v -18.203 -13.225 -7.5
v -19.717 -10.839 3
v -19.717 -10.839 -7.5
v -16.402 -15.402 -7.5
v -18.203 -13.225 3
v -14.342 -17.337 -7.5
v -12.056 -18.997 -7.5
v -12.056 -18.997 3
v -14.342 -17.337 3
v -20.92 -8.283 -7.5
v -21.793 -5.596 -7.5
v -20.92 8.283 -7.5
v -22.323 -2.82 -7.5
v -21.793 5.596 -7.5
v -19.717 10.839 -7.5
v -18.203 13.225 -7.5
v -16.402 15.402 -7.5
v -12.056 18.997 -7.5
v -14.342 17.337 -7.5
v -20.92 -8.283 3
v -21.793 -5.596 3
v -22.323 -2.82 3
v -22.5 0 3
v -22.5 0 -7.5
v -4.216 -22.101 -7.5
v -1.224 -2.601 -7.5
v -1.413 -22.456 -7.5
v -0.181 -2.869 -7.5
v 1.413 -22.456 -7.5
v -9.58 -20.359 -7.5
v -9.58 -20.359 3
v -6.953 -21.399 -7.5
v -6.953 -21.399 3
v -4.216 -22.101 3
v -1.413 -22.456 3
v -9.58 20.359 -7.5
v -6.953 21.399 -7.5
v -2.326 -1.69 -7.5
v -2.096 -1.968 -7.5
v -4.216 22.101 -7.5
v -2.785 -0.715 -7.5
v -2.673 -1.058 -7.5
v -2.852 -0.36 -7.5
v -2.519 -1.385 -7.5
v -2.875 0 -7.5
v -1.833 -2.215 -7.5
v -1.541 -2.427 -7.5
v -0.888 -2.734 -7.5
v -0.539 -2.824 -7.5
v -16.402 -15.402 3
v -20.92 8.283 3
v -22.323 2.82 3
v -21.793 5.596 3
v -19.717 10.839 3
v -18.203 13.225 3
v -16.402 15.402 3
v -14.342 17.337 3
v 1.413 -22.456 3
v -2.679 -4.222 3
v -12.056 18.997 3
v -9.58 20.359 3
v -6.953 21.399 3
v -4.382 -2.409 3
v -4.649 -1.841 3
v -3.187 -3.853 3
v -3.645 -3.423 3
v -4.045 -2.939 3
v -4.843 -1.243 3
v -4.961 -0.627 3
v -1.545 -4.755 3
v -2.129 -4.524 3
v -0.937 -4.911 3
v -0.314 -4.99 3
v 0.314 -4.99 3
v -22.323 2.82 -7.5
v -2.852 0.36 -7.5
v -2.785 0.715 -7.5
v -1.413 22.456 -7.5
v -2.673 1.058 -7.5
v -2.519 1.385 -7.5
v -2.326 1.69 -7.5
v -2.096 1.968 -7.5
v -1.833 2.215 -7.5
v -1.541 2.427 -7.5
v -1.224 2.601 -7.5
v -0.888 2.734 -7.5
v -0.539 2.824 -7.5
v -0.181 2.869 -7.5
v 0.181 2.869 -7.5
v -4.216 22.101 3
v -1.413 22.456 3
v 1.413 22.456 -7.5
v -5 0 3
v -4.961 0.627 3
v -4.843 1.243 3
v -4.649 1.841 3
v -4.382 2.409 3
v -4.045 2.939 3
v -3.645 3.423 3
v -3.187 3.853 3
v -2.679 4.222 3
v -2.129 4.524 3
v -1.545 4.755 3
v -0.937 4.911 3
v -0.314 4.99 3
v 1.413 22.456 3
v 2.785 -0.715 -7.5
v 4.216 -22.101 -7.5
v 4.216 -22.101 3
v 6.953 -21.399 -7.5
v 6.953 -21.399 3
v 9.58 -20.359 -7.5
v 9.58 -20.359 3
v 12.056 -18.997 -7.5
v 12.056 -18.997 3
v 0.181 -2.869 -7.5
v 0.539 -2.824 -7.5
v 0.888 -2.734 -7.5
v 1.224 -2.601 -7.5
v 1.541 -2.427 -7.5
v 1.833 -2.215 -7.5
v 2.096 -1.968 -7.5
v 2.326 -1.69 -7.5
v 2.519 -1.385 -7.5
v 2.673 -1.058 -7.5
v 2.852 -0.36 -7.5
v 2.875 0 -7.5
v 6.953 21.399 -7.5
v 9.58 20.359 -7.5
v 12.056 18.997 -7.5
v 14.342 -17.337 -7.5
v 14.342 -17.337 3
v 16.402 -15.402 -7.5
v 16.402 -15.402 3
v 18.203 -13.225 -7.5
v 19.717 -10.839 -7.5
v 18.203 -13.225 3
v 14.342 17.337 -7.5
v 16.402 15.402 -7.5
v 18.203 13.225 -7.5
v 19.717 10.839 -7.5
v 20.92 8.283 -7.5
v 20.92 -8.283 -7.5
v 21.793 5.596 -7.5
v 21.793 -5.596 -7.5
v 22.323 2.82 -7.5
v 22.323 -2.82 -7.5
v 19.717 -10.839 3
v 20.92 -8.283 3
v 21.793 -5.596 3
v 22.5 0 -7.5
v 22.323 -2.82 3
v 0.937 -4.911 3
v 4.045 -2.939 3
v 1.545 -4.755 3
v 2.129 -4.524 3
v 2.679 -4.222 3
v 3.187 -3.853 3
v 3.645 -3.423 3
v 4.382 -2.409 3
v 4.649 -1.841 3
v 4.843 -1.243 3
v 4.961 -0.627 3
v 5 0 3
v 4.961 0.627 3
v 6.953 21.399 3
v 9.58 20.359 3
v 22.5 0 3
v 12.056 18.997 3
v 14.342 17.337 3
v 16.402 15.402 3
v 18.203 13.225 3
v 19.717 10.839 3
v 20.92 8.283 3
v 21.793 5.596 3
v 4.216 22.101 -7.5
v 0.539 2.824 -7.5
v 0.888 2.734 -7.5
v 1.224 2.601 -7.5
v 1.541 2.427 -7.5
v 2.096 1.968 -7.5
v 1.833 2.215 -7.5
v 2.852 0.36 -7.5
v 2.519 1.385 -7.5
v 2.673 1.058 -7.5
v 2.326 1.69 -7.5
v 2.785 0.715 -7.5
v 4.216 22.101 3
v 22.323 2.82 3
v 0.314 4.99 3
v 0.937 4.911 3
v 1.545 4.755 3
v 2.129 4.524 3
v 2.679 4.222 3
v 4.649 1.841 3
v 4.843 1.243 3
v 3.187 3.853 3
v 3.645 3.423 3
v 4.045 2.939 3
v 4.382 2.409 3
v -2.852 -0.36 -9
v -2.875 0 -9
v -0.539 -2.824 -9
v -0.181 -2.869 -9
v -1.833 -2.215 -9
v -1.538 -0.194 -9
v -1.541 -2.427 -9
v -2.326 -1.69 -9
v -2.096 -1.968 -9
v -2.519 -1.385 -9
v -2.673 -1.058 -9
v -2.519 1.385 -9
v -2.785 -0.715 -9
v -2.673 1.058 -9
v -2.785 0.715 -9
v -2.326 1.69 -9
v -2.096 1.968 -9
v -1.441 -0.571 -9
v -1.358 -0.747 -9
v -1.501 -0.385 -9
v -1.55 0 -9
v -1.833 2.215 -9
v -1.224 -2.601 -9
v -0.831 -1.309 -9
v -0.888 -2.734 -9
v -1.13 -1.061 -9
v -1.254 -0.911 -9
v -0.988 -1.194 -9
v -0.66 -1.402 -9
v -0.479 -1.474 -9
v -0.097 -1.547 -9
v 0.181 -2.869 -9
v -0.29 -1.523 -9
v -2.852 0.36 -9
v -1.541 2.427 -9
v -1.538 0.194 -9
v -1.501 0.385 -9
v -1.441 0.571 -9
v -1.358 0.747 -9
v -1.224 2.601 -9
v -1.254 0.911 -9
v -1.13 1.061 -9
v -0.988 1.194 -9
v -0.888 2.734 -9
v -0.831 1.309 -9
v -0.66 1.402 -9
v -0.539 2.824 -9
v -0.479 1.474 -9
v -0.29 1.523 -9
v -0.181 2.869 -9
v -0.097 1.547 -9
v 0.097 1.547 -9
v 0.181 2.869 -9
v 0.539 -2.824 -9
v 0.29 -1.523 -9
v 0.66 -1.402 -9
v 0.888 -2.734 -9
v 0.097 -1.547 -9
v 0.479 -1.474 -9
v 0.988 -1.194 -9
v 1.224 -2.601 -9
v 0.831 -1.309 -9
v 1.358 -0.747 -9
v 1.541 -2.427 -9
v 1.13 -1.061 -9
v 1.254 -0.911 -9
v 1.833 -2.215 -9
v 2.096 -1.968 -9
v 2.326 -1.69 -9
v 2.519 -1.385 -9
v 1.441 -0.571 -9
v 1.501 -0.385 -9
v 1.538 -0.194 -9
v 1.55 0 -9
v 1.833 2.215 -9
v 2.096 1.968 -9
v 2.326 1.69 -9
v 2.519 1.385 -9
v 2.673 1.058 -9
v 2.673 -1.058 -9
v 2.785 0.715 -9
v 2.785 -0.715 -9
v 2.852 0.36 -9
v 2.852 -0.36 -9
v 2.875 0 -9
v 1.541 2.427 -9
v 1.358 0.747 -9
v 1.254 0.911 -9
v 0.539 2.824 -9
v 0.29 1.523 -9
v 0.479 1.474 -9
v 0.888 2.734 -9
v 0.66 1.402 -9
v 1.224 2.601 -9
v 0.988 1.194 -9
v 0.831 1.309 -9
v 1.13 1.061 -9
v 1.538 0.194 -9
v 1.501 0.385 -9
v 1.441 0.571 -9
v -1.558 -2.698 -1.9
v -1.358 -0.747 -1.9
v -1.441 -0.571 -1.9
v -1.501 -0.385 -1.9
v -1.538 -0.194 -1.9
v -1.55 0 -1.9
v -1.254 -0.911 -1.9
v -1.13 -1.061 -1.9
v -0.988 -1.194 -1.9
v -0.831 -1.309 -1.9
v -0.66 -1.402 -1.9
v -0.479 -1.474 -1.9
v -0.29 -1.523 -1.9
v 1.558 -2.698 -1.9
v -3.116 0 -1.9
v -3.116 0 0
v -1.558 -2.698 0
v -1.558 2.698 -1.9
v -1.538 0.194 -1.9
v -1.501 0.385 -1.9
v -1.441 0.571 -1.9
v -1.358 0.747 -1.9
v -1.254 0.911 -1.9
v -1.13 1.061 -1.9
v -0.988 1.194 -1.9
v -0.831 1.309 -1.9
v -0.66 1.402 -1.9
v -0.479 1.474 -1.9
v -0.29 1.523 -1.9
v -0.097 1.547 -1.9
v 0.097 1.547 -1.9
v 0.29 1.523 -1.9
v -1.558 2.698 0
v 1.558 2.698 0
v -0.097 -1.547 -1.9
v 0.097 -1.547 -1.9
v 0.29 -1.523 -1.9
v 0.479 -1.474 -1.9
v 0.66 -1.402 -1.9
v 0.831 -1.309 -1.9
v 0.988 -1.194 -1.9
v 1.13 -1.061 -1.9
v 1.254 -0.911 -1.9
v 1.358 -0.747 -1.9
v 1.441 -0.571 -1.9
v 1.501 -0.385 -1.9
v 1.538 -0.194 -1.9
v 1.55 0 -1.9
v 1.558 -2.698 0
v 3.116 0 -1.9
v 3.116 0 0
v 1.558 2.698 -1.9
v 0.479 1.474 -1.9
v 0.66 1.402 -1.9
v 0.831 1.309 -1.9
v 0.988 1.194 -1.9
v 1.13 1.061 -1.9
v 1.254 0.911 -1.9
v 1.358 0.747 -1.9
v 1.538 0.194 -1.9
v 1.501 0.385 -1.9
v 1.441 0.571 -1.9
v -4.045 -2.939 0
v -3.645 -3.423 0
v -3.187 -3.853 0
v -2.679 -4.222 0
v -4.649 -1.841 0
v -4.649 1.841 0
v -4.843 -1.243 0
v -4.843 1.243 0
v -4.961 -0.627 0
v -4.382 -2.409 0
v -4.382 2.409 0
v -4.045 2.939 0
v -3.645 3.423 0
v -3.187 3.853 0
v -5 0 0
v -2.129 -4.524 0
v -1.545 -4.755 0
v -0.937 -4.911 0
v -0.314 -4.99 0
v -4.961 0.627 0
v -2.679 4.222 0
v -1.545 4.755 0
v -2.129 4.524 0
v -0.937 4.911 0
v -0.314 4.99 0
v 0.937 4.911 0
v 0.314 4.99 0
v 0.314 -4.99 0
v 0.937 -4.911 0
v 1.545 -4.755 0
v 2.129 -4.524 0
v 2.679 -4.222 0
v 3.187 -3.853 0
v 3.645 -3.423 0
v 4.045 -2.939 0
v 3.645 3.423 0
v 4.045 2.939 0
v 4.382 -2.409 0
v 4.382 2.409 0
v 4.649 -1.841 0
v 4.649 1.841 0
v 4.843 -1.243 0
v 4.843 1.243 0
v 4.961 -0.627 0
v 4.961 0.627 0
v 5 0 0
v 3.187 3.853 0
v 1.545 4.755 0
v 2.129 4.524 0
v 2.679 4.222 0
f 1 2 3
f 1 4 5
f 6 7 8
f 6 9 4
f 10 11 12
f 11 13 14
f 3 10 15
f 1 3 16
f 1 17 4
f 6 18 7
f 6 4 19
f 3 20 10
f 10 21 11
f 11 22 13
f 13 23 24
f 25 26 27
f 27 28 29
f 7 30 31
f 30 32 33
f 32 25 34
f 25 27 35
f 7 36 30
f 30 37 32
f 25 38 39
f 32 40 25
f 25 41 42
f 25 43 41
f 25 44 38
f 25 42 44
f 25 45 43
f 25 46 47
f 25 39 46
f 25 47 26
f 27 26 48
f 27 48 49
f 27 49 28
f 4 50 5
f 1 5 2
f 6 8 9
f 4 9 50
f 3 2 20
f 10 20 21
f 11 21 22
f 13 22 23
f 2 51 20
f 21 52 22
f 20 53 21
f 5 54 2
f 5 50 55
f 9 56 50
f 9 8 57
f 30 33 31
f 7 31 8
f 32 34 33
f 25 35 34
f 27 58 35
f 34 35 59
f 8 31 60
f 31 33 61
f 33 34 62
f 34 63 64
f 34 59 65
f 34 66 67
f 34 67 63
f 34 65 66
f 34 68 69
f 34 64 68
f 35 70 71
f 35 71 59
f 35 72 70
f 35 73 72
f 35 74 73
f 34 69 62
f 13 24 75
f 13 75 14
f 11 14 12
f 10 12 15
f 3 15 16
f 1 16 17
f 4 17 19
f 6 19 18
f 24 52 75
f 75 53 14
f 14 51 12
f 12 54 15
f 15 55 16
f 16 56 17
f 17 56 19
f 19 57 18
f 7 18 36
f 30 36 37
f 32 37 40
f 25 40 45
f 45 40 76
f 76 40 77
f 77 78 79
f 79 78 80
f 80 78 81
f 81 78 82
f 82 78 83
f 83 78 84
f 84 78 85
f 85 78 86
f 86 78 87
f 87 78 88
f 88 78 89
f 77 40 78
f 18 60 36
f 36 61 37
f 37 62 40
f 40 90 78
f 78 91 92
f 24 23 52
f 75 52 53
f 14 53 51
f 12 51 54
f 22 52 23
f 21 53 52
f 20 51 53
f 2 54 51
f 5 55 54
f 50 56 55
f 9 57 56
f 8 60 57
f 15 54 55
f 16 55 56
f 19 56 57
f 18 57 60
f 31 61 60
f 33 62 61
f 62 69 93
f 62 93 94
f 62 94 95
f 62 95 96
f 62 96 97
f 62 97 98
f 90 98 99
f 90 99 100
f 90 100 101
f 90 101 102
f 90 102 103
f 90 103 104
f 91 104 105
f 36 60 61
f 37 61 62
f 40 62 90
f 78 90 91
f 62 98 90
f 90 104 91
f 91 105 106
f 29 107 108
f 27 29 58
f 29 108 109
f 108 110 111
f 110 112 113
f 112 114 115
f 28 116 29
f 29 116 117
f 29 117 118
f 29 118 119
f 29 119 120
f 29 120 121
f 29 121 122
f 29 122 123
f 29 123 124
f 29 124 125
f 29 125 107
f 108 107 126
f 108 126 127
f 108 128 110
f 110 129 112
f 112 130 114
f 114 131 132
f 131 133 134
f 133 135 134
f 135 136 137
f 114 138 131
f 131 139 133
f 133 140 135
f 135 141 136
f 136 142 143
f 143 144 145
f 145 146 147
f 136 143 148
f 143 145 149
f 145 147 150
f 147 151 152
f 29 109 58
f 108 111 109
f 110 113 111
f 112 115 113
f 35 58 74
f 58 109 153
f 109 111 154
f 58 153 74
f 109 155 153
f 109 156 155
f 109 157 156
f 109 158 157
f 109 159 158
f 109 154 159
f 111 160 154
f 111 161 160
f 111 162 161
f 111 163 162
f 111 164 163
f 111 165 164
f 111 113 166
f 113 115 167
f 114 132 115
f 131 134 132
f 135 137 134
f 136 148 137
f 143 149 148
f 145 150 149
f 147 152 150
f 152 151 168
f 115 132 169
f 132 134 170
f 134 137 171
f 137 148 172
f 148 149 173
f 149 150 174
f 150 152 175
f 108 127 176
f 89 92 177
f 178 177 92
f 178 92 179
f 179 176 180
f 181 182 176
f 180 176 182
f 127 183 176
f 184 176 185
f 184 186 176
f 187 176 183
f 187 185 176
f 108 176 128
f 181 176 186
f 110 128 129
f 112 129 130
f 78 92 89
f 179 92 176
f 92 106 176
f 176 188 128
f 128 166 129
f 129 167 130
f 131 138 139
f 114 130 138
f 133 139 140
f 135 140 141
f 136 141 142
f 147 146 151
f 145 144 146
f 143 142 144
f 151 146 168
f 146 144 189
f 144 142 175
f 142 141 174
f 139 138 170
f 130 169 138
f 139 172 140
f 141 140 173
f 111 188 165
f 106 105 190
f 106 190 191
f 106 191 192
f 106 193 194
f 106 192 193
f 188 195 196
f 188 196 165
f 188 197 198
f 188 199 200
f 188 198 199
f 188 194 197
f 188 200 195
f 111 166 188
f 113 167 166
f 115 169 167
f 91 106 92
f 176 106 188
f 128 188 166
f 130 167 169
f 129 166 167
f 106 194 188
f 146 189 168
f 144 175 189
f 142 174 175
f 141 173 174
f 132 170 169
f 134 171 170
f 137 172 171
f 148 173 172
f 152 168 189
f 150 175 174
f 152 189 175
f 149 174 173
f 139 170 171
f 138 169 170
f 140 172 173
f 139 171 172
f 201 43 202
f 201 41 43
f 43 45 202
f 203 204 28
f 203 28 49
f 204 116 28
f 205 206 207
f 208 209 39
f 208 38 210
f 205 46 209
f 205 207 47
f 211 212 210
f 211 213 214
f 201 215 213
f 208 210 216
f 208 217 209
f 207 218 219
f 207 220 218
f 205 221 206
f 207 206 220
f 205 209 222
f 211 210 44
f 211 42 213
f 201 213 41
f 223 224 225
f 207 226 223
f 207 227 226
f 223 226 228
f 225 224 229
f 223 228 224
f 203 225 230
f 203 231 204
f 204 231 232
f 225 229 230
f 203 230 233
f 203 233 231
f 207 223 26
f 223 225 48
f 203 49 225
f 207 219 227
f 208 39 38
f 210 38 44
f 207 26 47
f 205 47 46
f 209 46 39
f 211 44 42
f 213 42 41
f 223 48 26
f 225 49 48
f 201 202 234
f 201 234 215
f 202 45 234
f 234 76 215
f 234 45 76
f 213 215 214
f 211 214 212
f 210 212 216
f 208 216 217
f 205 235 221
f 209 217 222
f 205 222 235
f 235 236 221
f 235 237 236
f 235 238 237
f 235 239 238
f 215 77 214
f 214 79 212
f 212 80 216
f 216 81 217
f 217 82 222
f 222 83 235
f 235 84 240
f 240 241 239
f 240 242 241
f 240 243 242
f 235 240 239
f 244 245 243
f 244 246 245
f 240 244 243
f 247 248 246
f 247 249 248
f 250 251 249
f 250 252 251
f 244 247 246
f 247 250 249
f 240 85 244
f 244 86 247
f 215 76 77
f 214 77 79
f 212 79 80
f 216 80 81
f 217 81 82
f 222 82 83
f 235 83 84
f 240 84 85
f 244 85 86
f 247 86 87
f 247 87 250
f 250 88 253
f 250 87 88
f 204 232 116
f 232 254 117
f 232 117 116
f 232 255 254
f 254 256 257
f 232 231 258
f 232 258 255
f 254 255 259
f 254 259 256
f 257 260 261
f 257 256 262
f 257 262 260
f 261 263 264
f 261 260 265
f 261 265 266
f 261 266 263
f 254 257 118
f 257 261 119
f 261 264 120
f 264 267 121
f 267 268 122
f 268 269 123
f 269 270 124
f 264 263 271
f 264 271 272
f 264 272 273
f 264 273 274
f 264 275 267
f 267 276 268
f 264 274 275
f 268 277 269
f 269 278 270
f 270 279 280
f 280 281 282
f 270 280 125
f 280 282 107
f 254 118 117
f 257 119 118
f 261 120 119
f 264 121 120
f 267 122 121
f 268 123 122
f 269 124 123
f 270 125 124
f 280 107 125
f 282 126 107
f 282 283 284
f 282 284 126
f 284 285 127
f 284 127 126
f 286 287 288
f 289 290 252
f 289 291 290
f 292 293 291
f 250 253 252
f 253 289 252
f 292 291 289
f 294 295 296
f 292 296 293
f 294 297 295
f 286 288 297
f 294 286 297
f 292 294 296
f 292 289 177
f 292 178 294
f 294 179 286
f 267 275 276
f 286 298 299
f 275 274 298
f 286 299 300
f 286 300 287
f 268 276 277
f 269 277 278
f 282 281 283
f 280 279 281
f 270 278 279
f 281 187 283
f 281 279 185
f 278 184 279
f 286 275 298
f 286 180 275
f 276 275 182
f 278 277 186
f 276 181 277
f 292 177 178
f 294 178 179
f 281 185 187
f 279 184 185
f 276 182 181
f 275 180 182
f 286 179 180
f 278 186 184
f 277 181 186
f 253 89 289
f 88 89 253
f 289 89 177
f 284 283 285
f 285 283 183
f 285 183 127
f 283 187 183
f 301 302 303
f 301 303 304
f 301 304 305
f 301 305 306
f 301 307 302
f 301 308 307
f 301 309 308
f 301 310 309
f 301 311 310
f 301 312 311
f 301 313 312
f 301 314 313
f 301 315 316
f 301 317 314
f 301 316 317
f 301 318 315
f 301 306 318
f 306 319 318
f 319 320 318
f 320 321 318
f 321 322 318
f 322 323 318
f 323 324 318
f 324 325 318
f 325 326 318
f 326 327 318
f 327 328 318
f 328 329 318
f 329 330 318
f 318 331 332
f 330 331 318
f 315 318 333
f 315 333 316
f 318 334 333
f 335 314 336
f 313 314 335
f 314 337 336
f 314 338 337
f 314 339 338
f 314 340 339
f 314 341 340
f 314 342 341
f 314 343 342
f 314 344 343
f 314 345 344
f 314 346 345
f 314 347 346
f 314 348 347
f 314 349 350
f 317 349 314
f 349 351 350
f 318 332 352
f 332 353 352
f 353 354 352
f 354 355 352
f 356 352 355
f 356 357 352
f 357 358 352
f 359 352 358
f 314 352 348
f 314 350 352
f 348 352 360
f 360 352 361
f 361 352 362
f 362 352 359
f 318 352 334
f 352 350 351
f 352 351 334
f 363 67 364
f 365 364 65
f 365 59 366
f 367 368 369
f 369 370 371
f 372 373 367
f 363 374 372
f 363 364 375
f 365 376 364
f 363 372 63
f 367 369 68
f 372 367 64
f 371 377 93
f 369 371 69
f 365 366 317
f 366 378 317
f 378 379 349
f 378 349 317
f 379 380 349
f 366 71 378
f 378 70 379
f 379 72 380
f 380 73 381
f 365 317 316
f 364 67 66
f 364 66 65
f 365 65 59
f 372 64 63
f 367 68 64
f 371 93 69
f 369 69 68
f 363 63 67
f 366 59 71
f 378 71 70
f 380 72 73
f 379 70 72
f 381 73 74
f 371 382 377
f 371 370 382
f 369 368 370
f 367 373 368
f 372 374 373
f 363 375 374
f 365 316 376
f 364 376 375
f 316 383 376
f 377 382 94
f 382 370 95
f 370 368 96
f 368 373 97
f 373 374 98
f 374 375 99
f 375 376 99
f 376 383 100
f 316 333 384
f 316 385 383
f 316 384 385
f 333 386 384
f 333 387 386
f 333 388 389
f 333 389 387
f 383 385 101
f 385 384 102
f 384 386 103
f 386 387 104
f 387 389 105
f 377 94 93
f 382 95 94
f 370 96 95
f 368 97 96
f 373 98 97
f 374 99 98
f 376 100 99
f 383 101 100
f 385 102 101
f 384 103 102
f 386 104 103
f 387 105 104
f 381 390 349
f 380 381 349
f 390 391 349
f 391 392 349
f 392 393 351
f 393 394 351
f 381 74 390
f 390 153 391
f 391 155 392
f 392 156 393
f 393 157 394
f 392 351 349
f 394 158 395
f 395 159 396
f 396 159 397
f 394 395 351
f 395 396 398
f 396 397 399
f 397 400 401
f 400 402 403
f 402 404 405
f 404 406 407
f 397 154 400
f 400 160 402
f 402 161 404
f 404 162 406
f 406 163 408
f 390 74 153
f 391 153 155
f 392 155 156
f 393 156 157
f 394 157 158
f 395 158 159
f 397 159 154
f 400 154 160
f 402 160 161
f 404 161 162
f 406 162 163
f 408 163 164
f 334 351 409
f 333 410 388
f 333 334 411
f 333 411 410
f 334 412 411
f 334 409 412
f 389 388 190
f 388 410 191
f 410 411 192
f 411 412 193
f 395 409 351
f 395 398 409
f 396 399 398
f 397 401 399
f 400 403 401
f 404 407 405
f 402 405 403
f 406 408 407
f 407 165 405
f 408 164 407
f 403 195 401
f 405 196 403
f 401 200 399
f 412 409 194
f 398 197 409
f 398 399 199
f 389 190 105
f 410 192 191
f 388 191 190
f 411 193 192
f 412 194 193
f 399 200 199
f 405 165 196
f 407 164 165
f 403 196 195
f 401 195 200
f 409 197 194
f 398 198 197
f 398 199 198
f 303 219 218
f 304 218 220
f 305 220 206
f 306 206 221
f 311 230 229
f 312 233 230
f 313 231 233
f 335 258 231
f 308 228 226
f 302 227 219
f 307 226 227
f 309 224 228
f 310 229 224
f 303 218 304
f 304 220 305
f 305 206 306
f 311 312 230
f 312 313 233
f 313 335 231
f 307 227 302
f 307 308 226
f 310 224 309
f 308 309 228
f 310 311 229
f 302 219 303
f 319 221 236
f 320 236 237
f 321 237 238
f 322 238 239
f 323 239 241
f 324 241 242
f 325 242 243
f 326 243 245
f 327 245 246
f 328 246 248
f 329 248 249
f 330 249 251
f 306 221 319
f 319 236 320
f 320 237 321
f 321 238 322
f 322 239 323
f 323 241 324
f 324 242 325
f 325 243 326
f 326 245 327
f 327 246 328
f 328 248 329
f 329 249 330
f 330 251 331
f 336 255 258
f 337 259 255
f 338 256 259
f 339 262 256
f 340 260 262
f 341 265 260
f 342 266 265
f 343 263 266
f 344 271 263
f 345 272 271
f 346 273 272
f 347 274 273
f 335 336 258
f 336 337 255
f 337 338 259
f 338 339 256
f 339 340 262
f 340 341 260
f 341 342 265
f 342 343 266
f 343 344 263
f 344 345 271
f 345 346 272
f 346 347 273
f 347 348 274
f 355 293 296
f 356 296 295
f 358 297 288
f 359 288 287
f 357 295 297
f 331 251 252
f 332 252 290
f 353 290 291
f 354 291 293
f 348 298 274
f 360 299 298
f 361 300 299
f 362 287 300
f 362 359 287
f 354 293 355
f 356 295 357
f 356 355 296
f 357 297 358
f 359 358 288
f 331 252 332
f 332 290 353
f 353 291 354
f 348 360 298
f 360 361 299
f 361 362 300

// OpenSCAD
$fn = 50;

difference() {
	union() {
		translate(v = [0, 0, -7.5]) {
			cylinder(h = 10.5, r = 22.5);
		}
		#translate(v = [0, 0, -9.0]) {
			cylinder(h = 9, r = 2.875);
		}
	}
	union() {
		translate(v = [0, 0, 0]) {
			rotate(a = [0, 0, 0]) {
				difference() {
					union() {
						translate(v = [0, 0, -1.9]) {
							linear_extrude(height = 1.9) {
								polygon(points = [[3.1158, 0.0], [1.5579000000000005, 2.698361953111554], [-1.5578999999999994, 2.6983619531115544], [-3.1158, 3.815754496783323e-16], [-1.5579000000000014, -2.6983619531115535], [1.557899999999998, -2.6983619531115552]]);
							}
						}
					}
					union();
				}
			}
		}
		#cylinder(h = 3, r = 5.0);
		#translate(v = [0, 0, -100.0]) {
			cylinder(h = 200, r = 1.55);
		}
	}
}
